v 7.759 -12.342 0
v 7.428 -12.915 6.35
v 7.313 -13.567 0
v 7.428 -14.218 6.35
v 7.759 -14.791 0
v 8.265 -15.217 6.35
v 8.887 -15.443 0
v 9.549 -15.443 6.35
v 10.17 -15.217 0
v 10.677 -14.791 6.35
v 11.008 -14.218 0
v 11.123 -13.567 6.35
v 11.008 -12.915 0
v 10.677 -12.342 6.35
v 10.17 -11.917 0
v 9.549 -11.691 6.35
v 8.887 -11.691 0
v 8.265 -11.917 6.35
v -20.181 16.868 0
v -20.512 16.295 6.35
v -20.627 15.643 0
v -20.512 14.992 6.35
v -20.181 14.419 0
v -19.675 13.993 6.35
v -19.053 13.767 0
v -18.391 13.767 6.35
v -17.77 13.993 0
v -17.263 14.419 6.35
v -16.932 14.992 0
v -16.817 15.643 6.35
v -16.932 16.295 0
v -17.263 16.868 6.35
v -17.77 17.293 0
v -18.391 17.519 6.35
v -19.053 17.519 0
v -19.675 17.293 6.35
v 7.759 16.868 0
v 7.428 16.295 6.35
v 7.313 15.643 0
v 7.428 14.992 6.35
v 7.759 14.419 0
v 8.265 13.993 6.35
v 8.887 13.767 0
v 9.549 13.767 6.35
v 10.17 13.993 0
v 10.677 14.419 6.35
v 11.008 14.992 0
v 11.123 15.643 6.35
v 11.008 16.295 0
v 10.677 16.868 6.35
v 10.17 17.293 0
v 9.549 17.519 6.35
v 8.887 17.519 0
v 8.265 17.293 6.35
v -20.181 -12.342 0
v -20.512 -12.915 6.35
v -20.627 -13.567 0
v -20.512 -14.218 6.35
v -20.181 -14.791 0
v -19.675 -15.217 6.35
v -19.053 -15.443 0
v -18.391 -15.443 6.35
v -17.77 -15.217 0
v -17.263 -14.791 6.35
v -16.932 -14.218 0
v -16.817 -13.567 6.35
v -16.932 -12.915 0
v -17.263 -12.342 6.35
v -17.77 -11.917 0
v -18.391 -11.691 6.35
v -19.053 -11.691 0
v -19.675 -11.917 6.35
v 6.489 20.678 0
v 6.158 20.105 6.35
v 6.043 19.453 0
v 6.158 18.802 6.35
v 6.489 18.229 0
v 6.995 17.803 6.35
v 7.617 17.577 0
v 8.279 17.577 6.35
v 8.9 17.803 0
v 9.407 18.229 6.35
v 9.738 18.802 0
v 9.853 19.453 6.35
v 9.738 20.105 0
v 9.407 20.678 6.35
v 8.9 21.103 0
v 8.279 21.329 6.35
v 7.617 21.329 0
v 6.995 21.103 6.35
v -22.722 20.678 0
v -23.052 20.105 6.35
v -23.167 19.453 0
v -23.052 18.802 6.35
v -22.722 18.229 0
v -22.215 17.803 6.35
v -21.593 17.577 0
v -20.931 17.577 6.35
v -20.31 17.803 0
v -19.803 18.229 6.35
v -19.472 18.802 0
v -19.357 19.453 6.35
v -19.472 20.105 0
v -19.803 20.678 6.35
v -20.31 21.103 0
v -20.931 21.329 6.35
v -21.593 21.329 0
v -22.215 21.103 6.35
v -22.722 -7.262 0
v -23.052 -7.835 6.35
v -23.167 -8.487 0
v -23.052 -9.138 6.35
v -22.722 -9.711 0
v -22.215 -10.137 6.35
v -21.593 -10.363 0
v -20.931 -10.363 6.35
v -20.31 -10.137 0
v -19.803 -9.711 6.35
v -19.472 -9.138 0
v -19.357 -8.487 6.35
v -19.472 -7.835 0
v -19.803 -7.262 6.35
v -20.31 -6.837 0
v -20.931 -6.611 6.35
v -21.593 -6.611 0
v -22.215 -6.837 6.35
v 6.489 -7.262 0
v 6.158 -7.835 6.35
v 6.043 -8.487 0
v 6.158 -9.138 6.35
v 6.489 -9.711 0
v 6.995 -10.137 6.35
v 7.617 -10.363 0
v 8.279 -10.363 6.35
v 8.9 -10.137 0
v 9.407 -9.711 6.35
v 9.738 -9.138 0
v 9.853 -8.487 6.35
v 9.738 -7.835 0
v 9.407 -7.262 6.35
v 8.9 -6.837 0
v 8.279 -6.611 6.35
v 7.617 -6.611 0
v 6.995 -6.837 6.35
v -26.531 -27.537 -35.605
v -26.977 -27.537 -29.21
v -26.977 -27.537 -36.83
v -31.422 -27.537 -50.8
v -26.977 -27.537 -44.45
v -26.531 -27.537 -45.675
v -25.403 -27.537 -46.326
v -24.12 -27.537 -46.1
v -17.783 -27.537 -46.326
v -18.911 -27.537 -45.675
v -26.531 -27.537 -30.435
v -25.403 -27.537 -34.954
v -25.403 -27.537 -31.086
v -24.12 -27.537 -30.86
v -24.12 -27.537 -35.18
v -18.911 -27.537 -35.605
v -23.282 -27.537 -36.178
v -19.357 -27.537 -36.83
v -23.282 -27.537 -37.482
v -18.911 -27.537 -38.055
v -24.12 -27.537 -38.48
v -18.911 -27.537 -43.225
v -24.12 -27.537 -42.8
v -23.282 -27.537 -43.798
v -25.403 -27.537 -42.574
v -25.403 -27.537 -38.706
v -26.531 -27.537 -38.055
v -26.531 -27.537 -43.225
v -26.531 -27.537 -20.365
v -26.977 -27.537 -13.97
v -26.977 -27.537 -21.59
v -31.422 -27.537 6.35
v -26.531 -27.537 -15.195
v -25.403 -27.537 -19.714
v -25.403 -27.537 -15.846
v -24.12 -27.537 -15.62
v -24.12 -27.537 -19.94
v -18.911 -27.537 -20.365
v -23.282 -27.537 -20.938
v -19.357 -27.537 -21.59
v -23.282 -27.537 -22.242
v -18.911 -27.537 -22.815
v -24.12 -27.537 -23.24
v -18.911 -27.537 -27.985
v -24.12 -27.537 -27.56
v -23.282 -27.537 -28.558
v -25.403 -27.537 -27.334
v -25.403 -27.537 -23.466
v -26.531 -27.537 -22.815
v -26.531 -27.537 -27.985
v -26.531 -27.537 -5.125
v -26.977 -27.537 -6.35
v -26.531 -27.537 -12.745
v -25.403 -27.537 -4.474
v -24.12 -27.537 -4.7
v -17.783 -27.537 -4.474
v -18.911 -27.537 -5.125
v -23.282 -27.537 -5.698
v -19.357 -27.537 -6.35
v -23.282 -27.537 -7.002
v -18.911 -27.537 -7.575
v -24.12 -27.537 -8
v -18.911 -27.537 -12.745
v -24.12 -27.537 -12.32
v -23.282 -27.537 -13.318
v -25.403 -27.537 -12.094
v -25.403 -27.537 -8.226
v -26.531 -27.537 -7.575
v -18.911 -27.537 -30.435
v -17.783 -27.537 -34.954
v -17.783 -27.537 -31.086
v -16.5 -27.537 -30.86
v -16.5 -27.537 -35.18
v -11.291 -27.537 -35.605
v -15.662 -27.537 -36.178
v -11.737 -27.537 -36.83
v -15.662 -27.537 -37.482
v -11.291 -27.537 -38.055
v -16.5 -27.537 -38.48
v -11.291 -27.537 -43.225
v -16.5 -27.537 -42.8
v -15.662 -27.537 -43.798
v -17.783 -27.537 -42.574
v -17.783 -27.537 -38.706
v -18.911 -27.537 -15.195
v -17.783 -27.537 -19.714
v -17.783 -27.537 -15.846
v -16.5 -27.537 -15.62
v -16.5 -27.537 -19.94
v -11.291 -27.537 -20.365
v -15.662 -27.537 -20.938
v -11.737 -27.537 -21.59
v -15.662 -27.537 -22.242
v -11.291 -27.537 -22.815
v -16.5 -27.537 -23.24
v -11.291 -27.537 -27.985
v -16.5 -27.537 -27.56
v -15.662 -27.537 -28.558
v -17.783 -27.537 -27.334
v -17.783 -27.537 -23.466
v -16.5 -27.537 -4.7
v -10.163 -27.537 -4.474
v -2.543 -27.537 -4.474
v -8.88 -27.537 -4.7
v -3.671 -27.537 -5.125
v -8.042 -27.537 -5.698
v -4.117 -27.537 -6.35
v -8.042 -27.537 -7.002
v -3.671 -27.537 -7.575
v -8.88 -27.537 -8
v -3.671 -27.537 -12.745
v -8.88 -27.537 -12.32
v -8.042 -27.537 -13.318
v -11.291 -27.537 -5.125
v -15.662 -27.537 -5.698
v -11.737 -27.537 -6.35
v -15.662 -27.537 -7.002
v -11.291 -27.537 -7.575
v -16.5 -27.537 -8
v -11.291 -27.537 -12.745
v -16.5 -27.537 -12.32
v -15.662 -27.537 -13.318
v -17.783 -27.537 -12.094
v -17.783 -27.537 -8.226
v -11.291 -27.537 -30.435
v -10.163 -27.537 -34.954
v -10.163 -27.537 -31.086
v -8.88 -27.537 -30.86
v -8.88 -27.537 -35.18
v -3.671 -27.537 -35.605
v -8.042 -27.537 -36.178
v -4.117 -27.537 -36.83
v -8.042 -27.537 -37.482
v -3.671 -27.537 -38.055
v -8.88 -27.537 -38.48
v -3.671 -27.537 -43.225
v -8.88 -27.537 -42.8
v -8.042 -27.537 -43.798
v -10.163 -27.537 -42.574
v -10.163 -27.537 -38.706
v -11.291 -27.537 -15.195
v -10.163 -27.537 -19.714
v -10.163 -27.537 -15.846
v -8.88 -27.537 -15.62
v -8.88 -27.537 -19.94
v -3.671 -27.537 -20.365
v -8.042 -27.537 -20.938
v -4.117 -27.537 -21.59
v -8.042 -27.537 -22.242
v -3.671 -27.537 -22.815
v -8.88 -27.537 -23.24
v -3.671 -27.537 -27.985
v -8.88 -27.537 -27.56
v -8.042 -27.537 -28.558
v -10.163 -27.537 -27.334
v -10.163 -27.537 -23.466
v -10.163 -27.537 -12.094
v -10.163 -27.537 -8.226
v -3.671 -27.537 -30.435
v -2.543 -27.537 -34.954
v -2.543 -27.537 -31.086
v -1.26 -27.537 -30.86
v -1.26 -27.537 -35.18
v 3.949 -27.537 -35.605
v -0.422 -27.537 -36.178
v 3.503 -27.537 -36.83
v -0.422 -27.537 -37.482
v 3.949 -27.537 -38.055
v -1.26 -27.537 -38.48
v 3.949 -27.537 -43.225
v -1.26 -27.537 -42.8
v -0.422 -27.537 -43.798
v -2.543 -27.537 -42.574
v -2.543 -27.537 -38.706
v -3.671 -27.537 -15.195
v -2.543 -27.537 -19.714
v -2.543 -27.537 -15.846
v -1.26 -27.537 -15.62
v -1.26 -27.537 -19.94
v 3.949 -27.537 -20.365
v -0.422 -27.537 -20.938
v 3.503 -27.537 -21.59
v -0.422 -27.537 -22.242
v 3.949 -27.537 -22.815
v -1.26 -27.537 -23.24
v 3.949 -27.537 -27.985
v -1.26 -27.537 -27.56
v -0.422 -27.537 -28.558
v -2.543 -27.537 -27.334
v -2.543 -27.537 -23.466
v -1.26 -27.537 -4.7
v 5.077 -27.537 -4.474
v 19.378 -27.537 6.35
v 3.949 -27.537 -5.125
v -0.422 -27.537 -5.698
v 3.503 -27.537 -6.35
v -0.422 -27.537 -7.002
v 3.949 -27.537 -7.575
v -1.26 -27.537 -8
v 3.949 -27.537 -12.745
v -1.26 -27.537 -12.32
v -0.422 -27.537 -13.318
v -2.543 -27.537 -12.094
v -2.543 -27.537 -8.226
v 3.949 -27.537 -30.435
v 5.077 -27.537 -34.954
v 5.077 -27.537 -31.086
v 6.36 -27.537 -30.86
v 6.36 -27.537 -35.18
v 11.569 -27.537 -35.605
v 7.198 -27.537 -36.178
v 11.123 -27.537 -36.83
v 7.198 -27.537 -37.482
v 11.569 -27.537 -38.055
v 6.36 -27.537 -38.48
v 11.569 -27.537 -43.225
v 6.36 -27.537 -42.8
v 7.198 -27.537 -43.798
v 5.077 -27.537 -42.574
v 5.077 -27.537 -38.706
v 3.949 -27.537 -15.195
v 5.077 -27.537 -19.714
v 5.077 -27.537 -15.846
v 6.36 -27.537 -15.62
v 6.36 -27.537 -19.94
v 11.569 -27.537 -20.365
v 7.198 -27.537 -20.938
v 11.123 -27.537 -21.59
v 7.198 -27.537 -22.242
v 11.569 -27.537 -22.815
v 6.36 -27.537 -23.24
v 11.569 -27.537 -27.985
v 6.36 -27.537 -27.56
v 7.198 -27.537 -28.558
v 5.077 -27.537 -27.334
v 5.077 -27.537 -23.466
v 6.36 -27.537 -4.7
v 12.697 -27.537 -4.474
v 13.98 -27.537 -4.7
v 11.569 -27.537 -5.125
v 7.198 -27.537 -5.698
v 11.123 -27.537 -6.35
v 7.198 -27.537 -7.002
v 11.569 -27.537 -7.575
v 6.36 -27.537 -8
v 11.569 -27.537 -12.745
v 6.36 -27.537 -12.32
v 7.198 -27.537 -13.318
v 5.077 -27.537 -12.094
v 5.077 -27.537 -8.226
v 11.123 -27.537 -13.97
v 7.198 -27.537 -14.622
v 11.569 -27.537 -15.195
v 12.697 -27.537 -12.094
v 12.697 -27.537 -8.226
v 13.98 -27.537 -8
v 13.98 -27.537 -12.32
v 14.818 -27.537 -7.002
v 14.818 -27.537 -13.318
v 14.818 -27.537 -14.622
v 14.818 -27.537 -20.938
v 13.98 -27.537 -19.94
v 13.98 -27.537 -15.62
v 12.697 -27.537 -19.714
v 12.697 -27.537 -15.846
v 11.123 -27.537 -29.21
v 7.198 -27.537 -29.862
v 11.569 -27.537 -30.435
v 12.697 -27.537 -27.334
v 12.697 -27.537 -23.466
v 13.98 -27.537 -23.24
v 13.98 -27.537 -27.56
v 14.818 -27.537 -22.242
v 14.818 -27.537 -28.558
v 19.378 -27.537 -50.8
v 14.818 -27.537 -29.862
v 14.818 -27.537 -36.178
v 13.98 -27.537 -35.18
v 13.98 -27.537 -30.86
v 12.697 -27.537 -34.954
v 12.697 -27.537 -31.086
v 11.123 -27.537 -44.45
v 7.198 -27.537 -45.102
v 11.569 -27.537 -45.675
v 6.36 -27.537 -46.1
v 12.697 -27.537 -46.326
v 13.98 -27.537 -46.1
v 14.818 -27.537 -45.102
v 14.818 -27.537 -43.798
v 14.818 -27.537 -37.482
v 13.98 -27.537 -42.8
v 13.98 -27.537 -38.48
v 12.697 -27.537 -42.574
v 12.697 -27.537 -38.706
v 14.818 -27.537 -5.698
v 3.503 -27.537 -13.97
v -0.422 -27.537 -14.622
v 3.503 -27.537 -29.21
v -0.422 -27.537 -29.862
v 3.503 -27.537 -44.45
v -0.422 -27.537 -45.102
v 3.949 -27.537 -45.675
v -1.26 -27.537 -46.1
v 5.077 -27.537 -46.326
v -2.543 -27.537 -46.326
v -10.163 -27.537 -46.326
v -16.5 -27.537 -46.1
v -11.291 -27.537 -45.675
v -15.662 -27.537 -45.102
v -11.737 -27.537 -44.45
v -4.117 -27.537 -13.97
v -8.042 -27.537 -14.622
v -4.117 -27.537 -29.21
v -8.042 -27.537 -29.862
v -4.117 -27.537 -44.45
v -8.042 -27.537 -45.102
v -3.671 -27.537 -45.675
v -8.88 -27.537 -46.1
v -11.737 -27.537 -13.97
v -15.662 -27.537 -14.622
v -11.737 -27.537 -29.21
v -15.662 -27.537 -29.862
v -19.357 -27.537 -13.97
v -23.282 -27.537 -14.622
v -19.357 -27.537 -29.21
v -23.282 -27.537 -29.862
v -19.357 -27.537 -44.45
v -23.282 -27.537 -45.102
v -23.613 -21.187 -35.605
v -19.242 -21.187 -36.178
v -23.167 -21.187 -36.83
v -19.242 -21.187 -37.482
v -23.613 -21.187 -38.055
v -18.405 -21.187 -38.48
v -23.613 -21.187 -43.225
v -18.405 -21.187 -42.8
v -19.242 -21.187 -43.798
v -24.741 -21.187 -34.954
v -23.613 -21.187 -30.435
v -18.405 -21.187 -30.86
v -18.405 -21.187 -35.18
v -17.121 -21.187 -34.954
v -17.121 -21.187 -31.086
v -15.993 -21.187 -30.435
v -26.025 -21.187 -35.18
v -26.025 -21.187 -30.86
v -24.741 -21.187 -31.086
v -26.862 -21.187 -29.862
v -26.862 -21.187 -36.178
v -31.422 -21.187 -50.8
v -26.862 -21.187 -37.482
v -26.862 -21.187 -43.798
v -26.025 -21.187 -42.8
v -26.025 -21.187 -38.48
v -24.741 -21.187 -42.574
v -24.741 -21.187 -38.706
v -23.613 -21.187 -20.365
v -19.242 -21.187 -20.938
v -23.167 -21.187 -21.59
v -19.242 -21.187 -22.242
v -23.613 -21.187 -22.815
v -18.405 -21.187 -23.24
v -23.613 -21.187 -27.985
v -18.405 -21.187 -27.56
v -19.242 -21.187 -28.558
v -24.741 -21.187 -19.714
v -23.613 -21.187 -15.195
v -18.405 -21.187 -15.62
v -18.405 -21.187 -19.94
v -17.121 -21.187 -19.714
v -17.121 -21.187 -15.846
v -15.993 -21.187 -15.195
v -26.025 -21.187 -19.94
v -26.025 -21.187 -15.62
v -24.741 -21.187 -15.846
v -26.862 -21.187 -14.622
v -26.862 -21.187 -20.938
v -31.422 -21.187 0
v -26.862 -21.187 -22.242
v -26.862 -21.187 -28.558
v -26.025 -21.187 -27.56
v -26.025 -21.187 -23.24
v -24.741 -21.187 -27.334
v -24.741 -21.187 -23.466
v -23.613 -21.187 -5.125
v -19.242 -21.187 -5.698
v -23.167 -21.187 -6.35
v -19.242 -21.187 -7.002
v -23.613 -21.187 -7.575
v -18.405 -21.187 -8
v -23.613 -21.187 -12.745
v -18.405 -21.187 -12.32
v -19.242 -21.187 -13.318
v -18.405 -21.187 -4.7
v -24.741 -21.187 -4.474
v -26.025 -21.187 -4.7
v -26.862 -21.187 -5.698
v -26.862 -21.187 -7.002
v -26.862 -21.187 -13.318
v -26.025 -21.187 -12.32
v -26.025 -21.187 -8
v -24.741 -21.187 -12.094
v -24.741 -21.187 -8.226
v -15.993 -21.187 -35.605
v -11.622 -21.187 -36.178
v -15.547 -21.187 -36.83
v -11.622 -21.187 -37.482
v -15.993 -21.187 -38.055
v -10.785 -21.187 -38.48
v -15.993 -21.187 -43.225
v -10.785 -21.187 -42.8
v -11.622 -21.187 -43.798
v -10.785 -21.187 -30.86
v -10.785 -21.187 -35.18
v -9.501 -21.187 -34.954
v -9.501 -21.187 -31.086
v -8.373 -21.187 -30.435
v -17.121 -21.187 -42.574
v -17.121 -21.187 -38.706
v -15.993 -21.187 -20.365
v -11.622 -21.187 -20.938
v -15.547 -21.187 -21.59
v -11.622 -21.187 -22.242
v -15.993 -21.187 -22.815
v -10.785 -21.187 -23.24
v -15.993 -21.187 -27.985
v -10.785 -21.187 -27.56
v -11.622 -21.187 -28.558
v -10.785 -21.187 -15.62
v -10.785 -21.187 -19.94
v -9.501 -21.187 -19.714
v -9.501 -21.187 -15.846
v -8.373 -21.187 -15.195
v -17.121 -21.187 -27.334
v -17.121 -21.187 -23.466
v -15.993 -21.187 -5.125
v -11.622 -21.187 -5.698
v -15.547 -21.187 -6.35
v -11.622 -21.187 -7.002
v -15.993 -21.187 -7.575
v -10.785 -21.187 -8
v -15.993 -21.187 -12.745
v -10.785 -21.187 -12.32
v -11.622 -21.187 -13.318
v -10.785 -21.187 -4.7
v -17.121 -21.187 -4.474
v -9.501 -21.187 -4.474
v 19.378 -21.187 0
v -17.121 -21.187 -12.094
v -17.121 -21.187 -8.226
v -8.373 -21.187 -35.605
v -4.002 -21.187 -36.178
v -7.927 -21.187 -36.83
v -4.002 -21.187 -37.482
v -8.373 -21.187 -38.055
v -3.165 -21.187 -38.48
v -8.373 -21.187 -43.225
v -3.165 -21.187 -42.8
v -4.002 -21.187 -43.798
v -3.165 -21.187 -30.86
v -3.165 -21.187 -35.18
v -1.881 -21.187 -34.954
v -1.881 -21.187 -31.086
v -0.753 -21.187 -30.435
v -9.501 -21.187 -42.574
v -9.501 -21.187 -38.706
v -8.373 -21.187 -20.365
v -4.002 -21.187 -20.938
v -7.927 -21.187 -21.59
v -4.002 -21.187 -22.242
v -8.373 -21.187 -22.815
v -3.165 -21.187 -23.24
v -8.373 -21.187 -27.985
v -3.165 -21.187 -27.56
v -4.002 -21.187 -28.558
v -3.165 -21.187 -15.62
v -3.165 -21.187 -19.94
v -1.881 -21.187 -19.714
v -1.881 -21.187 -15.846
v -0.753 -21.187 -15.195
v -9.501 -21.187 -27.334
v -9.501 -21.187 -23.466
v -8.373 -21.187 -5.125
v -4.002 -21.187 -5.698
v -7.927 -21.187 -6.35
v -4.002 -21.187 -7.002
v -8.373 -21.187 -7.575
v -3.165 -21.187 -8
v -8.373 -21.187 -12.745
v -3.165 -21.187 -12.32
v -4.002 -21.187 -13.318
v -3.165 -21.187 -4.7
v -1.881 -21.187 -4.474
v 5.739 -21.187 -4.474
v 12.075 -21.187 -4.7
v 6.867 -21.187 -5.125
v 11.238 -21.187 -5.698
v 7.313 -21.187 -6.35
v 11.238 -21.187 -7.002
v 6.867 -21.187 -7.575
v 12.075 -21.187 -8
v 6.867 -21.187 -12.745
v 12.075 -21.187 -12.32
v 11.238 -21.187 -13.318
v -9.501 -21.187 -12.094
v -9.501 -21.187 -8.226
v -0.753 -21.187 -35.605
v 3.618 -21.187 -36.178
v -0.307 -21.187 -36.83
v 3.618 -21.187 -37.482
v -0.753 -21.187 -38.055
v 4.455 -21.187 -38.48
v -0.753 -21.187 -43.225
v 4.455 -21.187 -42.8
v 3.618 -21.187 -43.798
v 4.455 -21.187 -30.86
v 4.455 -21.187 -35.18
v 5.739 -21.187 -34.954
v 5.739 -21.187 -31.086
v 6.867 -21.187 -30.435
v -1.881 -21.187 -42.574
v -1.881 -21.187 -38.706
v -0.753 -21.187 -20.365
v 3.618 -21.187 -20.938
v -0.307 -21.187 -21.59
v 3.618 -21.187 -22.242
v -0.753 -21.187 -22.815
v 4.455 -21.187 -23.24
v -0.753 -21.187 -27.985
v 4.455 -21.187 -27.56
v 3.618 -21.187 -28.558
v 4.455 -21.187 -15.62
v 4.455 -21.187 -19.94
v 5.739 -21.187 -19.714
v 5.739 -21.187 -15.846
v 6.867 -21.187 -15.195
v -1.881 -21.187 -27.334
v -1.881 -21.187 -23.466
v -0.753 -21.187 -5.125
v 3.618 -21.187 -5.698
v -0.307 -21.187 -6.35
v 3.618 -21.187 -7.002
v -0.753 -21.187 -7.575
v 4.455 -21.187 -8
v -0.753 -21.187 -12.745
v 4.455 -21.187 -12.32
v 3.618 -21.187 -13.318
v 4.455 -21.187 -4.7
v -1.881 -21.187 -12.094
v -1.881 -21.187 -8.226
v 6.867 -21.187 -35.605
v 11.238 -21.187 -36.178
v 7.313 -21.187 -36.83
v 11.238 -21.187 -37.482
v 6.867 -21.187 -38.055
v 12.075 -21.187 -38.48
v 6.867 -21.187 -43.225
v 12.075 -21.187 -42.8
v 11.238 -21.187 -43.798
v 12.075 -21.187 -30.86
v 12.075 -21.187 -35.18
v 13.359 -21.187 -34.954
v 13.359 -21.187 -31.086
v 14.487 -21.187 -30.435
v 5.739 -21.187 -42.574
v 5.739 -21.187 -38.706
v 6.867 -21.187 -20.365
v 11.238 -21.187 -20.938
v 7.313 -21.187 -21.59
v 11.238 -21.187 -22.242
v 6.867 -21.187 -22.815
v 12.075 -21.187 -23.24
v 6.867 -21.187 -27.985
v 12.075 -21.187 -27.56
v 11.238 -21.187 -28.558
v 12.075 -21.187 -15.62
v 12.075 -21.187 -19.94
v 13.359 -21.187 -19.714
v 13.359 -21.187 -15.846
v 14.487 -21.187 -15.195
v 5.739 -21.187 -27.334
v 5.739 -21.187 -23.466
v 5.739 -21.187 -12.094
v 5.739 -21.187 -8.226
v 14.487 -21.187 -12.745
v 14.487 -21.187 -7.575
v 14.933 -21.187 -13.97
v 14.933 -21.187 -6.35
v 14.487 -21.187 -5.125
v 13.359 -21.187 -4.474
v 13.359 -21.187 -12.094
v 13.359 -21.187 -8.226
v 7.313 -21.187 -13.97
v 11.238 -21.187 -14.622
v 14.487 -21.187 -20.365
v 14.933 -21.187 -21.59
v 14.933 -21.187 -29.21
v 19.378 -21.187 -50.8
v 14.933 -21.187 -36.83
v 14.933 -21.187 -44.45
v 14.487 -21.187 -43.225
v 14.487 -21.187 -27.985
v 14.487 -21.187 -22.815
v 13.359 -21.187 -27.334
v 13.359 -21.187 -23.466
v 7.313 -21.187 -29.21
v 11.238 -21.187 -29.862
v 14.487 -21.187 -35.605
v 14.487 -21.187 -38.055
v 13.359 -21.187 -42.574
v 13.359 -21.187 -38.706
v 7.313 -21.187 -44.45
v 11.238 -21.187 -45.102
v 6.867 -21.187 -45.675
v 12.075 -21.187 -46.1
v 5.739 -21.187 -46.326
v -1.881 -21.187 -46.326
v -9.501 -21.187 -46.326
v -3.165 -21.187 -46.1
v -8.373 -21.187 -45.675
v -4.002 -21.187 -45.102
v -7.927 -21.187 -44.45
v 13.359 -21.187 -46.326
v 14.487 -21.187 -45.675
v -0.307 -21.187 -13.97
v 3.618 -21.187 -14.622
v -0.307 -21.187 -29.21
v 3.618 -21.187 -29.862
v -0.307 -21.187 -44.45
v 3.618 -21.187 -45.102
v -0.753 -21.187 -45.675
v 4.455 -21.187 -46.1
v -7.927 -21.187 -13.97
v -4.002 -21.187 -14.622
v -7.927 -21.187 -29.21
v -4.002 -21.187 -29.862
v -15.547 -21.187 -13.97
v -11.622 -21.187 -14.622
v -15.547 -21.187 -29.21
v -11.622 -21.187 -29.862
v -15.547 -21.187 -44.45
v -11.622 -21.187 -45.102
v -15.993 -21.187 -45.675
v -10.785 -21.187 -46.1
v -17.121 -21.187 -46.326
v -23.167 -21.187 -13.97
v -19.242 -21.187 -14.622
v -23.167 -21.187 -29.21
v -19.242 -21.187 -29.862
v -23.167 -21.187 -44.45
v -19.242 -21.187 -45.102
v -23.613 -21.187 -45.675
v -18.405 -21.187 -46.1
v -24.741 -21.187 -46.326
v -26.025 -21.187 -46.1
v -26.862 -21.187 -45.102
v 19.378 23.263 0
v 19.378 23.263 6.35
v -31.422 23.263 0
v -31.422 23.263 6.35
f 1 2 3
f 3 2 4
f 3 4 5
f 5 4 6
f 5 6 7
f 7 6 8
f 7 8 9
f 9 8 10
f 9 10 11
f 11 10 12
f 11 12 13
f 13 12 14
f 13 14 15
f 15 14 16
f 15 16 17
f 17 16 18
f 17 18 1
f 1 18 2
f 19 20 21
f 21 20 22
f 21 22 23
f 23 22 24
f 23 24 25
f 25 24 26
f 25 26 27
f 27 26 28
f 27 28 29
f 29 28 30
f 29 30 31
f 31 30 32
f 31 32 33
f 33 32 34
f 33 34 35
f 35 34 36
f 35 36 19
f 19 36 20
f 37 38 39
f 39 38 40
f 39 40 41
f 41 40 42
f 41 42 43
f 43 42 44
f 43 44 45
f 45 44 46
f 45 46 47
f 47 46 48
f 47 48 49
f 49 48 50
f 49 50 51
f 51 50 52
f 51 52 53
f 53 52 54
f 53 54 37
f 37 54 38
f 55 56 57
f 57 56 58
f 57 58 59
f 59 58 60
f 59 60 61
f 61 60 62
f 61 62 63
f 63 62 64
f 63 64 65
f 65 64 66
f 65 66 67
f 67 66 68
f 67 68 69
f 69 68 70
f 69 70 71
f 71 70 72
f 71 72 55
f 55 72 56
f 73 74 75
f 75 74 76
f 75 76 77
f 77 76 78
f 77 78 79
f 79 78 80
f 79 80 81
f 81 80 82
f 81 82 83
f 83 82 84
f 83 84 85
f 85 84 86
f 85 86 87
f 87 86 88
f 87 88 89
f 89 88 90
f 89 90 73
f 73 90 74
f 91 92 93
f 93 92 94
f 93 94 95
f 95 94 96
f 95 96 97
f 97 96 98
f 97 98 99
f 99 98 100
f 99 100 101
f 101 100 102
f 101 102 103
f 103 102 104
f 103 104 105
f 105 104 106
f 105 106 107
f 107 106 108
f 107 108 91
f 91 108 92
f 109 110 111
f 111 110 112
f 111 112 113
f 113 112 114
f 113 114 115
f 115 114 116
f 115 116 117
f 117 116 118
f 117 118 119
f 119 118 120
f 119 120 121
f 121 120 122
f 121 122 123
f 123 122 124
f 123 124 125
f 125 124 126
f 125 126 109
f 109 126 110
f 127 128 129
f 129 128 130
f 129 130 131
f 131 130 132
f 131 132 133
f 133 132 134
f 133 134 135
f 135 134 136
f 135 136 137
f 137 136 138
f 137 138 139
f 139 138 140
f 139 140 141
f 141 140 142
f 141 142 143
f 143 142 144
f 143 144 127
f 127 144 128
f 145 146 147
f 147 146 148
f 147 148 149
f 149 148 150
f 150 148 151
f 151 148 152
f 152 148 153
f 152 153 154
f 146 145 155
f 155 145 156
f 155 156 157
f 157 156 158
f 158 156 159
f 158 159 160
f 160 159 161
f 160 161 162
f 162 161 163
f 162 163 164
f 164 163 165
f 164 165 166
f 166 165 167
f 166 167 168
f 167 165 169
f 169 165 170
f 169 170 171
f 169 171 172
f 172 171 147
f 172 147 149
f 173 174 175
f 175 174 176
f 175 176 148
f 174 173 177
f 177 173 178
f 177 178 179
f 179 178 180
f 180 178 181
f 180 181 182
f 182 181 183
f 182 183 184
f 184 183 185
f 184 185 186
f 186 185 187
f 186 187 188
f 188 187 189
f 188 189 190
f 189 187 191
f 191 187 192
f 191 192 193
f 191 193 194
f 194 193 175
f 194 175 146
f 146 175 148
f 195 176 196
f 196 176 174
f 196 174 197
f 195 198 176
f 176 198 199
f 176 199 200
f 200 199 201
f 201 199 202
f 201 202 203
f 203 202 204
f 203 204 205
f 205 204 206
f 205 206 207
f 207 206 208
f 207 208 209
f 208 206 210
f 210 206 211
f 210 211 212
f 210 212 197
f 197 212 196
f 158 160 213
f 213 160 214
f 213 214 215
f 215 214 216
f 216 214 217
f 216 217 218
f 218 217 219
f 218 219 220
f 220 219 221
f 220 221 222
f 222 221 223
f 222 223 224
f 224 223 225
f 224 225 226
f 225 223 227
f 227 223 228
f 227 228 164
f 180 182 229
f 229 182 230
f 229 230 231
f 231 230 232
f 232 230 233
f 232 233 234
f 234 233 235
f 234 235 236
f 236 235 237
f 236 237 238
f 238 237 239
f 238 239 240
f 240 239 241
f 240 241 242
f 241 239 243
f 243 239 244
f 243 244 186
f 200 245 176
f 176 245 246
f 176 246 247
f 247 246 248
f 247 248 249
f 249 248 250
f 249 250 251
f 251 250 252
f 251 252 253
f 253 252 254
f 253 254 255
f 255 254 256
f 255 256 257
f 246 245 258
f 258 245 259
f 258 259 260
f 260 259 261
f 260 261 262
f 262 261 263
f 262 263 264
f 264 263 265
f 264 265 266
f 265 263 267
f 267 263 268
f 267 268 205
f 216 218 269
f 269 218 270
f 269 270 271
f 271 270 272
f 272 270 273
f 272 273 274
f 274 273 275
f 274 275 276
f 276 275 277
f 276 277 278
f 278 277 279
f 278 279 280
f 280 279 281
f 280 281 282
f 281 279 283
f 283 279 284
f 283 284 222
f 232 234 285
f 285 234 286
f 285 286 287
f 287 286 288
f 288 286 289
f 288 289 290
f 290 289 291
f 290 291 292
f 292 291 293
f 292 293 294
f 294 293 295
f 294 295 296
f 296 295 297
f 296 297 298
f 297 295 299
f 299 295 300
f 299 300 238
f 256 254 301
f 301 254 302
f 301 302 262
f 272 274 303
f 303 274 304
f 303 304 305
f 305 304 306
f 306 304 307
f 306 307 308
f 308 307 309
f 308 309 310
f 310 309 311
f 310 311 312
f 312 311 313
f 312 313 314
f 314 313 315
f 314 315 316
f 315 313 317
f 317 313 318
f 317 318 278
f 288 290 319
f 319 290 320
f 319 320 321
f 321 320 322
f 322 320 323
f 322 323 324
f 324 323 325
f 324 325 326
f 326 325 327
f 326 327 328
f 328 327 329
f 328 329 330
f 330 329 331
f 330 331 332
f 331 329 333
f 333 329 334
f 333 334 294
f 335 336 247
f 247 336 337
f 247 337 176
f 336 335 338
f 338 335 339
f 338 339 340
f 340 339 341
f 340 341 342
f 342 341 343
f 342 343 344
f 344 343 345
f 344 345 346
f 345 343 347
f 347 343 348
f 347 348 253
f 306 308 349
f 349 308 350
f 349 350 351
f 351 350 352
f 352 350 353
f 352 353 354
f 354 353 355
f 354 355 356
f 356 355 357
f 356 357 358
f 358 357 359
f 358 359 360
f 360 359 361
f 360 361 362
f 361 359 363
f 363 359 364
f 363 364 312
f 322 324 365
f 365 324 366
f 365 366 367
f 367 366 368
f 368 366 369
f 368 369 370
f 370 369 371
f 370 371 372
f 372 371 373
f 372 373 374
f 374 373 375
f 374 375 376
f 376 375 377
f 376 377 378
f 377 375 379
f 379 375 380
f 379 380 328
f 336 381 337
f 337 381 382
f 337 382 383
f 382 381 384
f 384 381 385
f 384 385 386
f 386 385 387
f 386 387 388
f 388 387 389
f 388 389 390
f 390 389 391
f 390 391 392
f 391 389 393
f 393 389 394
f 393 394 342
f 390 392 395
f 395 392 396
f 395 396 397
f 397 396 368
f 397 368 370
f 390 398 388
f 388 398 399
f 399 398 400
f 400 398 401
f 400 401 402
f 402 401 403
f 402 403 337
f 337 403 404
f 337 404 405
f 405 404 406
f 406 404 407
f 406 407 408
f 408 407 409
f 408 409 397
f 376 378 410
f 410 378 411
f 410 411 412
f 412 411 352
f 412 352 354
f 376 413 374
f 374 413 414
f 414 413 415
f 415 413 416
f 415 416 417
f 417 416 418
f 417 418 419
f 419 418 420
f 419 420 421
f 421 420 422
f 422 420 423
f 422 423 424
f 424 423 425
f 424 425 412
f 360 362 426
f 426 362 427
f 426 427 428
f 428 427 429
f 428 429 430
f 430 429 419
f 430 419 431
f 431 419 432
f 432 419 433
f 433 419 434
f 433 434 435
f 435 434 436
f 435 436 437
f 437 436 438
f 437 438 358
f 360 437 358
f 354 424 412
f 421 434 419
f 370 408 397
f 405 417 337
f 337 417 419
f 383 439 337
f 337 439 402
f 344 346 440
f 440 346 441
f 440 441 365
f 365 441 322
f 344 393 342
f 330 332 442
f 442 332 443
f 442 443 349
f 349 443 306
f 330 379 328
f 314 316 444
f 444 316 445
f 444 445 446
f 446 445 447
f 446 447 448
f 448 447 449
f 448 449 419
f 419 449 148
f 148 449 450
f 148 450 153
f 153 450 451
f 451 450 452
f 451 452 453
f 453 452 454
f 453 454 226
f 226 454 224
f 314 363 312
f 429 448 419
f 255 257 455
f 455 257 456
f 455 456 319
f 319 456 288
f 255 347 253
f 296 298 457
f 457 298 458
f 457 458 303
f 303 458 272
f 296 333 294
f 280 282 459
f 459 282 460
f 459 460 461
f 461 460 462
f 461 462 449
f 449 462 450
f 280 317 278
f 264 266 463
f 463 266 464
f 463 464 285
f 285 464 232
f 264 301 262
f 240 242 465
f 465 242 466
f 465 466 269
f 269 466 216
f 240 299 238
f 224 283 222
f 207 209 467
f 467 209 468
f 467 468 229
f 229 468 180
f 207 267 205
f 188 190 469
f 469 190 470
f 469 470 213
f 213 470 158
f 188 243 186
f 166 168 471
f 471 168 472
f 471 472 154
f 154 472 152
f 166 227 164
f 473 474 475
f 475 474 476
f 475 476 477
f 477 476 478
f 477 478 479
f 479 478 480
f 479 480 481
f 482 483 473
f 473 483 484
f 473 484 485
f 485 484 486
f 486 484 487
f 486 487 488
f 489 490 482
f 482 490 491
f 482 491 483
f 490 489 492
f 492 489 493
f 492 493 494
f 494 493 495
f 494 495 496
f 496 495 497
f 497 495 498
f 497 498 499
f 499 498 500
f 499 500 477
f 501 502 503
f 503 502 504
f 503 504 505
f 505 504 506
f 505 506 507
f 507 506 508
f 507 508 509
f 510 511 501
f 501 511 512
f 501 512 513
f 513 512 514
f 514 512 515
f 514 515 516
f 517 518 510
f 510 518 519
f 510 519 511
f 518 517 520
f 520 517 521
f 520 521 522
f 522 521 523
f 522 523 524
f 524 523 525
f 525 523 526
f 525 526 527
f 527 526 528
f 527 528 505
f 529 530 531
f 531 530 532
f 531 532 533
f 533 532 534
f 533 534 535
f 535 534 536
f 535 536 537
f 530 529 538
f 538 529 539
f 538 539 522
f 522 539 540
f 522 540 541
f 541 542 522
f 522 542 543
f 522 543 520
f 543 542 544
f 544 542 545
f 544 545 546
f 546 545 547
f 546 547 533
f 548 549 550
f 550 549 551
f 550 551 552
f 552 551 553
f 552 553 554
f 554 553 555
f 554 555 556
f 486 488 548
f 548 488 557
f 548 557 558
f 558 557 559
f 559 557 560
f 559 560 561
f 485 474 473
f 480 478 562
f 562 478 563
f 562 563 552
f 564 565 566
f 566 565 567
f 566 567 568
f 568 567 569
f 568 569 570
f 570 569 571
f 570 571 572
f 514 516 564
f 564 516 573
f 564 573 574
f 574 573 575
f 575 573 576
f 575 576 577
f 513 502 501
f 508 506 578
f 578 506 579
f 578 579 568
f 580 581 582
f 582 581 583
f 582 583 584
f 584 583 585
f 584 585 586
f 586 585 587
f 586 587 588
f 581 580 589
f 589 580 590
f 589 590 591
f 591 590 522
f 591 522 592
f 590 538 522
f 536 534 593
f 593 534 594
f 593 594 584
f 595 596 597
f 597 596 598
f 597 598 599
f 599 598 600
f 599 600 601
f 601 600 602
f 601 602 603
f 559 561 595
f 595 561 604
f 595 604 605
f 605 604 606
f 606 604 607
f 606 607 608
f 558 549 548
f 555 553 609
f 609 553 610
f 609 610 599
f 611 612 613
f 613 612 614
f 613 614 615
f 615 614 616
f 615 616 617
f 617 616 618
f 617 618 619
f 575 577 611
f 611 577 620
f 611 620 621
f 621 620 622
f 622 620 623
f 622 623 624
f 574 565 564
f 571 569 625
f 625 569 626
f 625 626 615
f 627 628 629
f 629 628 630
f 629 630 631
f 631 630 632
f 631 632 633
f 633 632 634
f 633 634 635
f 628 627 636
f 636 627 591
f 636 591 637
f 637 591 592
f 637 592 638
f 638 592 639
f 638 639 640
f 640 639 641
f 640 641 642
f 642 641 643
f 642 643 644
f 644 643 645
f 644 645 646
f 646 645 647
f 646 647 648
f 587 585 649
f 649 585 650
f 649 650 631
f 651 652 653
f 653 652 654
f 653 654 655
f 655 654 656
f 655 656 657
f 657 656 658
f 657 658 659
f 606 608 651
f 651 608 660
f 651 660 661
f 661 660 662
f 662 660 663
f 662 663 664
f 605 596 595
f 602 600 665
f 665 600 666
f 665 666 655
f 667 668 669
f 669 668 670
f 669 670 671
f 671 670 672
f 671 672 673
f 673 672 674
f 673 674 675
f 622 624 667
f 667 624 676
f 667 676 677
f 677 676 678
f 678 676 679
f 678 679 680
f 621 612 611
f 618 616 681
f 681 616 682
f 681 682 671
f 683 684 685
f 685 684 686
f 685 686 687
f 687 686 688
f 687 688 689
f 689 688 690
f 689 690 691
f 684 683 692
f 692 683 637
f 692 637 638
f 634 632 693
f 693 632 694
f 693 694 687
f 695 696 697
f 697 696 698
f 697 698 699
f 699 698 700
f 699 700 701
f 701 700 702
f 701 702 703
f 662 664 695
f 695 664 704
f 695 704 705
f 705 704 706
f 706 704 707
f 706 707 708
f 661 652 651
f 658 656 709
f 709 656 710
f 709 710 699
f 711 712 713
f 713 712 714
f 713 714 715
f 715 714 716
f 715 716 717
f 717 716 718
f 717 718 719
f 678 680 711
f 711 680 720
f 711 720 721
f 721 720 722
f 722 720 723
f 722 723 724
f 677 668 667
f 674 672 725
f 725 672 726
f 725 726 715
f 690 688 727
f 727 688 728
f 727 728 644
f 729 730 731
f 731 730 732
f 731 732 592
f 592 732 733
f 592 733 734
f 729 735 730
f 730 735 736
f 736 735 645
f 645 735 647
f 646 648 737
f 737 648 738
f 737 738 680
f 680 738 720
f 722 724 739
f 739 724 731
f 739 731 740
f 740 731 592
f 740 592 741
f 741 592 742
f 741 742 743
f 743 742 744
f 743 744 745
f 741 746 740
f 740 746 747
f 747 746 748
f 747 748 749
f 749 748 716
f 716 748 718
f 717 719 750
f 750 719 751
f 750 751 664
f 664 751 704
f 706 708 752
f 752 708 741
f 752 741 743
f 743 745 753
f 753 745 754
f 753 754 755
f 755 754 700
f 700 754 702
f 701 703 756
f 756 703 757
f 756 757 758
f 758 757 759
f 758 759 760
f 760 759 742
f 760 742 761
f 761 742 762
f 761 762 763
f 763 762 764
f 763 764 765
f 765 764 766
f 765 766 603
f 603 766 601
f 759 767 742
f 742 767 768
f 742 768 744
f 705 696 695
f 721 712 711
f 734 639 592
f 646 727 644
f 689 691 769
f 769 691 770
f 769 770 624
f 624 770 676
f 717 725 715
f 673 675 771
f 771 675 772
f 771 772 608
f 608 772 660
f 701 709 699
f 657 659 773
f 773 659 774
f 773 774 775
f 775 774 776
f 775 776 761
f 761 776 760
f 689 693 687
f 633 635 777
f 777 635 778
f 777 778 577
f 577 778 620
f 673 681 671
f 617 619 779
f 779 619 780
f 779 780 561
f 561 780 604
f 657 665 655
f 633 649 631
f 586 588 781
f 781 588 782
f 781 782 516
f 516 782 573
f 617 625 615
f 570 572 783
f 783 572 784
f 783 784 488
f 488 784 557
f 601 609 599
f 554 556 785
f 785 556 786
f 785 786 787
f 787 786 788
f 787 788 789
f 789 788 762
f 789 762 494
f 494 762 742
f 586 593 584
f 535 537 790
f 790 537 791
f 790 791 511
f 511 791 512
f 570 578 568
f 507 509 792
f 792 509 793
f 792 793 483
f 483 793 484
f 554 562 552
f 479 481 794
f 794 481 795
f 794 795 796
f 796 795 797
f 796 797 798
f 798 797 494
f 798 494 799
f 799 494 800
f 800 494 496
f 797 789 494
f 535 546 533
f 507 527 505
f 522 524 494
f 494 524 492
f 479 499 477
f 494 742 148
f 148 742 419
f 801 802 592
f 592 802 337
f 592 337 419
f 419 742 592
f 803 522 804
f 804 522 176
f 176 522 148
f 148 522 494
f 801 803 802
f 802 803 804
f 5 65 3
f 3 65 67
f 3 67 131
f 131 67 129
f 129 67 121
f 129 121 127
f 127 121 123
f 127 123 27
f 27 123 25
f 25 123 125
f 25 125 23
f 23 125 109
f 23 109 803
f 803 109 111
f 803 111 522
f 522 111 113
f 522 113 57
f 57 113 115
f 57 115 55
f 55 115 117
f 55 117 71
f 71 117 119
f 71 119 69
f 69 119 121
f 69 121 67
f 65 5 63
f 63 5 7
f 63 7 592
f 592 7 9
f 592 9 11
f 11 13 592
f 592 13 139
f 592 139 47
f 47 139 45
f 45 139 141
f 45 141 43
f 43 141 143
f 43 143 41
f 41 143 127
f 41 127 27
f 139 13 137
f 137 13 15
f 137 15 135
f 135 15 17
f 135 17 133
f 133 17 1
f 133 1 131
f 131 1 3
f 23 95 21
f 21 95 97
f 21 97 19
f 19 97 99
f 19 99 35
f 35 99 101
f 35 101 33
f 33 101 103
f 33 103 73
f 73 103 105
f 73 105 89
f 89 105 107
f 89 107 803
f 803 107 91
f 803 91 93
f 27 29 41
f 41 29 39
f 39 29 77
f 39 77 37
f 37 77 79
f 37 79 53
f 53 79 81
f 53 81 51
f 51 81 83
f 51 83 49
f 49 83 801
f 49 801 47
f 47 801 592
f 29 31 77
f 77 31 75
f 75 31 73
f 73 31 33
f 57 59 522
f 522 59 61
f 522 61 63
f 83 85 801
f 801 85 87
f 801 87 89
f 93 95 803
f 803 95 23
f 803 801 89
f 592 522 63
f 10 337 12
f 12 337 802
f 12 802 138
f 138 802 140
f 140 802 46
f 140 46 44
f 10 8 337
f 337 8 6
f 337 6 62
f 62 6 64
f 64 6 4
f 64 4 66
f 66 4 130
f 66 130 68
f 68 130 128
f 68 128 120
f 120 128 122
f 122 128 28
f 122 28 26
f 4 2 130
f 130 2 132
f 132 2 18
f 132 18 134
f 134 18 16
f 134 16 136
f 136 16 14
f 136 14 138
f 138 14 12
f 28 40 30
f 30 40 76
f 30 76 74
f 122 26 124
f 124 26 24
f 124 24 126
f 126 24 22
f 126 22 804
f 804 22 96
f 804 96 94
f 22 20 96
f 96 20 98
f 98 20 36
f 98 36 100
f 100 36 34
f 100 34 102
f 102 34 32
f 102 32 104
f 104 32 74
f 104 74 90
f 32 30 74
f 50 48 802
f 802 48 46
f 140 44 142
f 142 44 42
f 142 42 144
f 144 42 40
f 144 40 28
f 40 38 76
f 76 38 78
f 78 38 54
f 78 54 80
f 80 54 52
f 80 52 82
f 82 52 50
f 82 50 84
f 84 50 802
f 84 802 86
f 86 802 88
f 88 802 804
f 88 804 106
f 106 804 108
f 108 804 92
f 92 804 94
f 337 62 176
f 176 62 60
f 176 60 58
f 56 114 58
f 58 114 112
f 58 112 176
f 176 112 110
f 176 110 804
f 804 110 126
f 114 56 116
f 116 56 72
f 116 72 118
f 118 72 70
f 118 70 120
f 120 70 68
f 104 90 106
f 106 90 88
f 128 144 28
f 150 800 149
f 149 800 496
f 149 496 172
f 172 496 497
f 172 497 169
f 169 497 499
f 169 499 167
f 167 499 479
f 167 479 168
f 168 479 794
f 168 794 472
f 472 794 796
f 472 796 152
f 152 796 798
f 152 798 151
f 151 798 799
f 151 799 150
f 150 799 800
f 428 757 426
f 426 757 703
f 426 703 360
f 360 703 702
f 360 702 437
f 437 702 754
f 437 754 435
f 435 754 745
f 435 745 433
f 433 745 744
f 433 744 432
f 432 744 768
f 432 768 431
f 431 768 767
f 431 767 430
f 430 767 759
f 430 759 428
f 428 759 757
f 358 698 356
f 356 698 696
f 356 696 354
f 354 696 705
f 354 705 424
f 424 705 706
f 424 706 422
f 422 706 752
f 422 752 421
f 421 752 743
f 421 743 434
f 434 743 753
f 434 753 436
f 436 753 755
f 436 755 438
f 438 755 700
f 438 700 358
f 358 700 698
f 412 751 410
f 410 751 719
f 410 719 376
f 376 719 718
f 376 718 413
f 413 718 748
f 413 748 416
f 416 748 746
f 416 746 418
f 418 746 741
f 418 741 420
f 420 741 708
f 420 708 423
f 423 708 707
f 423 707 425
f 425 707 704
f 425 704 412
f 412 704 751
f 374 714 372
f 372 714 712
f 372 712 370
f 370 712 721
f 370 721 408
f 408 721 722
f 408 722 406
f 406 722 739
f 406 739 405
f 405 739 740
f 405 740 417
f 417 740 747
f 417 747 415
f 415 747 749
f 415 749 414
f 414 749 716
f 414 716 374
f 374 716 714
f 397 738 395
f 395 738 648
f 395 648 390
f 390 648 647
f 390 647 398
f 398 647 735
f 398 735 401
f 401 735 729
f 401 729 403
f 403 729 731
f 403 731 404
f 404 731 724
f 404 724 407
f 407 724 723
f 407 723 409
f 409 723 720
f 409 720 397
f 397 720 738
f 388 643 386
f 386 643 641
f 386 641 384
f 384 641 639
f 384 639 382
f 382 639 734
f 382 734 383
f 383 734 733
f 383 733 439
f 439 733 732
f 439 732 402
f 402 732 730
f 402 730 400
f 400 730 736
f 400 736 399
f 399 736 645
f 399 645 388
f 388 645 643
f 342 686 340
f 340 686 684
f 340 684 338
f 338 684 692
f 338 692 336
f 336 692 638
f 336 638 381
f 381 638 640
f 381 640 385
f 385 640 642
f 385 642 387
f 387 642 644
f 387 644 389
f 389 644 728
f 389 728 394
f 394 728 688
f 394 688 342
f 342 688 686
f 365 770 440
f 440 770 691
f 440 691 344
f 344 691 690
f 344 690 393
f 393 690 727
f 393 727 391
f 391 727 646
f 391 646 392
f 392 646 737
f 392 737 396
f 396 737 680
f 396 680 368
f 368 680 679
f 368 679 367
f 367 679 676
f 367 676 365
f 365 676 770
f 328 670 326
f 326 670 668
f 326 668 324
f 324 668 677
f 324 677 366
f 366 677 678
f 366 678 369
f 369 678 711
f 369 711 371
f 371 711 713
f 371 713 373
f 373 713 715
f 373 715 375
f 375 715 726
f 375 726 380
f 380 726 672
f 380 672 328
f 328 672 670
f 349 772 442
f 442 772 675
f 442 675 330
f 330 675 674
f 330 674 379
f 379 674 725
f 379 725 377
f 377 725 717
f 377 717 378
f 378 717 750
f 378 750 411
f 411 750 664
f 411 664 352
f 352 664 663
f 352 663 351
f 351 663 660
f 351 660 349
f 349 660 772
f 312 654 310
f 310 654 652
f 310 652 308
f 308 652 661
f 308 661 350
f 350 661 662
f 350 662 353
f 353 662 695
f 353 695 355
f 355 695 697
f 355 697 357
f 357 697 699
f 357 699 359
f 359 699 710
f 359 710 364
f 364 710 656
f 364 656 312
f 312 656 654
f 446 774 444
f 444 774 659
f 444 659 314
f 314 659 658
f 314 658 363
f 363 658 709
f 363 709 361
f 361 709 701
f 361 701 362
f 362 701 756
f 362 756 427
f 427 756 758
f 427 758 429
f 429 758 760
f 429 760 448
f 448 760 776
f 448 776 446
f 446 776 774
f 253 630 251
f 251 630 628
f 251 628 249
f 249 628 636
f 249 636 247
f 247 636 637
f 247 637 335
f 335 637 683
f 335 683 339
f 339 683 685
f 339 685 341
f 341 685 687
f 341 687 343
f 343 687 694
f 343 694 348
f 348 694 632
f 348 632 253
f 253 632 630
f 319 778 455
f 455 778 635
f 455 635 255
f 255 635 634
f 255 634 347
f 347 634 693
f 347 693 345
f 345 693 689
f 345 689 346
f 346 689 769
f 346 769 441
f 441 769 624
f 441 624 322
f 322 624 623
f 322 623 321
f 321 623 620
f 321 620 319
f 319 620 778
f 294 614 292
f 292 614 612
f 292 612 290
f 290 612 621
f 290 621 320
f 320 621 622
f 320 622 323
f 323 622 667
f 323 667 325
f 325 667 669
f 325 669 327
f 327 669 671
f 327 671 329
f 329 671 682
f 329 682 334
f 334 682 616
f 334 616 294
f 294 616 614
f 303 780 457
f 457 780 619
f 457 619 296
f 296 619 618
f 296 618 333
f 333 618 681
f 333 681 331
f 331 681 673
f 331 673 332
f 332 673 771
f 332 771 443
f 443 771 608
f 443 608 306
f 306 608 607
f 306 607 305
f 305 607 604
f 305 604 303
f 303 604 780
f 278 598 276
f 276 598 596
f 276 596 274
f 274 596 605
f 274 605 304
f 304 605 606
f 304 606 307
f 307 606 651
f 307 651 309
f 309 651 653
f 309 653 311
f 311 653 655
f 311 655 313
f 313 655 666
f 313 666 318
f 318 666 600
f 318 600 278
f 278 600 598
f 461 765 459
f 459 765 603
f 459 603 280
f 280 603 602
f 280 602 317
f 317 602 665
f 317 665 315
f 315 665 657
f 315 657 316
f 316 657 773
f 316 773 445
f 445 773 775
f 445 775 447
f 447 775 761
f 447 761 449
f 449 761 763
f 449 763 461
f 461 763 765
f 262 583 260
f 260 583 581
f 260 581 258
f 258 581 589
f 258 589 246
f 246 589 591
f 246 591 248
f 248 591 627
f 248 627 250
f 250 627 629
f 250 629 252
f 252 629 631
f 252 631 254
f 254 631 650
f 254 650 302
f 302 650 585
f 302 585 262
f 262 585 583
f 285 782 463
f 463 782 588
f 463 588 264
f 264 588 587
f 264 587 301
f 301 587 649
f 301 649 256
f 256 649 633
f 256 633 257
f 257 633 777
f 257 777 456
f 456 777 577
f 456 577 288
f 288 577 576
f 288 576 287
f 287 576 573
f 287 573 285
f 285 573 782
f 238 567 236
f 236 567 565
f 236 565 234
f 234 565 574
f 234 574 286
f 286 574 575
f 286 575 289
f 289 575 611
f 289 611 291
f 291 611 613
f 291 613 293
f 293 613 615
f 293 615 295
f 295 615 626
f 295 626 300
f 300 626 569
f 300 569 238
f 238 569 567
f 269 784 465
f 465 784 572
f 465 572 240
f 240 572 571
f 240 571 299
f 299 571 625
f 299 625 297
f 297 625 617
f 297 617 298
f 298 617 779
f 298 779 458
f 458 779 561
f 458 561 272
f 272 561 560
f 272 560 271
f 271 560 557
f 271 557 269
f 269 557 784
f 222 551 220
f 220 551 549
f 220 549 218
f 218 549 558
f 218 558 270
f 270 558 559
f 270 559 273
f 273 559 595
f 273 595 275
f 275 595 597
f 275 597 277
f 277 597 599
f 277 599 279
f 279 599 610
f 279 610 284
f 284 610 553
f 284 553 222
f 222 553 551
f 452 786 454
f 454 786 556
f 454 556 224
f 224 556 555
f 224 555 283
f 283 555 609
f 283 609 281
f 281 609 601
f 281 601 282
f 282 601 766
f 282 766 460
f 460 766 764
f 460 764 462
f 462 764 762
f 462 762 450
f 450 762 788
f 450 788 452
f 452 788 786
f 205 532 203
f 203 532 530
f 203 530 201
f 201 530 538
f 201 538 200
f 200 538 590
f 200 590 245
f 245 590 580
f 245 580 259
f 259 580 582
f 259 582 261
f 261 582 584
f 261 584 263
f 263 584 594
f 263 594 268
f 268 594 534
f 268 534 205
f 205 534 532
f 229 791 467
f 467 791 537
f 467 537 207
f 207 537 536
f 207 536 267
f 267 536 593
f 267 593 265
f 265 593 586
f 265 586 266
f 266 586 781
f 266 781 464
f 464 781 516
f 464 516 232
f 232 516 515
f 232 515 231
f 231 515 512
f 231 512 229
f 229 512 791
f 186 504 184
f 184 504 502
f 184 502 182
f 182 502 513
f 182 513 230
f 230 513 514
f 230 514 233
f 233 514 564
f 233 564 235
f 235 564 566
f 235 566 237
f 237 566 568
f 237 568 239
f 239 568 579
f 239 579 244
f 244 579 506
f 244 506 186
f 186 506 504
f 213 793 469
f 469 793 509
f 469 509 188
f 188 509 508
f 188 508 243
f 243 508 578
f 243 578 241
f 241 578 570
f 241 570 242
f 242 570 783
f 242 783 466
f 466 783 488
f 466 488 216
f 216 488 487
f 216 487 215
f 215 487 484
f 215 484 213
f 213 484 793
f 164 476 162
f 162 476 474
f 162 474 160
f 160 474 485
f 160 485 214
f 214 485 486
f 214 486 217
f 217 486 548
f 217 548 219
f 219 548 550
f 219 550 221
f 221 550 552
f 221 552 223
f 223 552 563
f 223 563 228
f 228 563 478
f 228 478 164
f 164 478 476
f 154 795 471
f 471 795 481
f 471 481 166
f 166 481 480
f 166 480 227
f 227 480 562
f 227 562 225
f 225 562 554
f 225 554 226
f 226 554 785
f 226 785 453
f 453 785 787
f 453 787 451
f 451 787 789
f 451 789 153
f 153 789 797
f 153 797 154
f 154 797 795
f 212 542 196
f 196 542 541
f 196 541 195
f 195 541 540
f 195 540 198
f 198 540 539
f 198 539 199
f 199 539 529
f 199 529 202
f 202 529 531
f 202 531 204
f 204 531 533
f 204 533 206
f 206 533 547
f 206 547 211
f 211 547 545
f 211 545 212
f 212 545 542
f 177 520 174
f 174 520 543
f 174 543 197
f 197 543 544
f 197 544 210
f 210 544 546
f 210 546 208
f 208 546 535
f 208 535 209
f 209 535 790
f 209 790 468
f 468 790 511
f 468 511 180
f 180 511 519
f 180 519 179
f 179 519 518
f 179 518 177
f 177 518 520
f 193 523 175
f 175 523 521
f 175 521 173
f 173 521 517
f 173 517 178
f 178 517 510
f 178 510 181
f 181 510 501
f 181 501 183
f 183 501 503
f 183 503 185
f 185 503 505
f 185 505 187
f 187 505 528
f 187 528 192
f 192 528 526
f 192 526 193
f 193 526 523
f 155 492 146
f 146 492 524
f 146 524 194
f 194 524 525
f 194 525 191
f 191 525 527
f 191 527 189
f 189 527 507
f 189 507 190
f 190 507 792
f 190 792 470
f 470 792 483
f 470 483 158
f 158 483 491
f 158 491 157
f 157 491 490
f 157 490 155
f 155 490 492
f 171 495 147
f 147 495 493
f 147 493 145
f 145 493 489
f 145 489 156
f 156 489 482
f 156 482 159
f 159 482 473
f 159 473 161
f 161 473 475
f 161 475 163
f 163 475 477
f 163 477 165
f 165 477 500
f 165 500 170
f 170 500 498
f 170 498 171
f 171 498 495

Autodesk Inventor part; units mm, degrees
ref_plane "YZ Plane" through (0, 0, 0) normal (1, 0, 0) x (0, 1, 0)
ref_plane "XZ Plane" through (0, 0, 0) normal (0, 1, 0) x (-1, 0, 0)
ref_plane "XY Plane" through (0, 0, 0) normal (0, 0, 1) x (1, 0, 0)
sketch "Sketch1" plane through (0, 0, 0) normal (0, 0, 1) x (1, 0, 0)
  line L0 (-31.4222, 23.2631) -> (19.3778, 23.2631)
  line L1 (19.3778, 23.2631) -> (19.3778, -21.1869)
  line L2 (19.3778, -21.1869) -> (-31.4222, -21.1869)
  line L3 (-31.4222, -21.1869) -> (-31.4222, 23.2631)
  point P0 (0, 0)
  dimension "d0" = 44.45
  dimension "d1" = 50.8
extrude "Extrusion1" add sketch "Sketch1" along normal blind 6.35
sketch "Sketch2" plane through (0, 0, 6.35) normal (0, 0, 1) x (1, 0, 0)
  line L0 (-31.4222, -21.1869) -> (19.3778, -21.1869)
  line L1 (19.3778, -21.1869) -> (19.3778, -27.5369)
  line L2 (19.3778, -27.5369) -> (-31.4222, -27.5369)
  line L3 (-31.4222, -27.5369) -> (-31.4222, -21.1869)
  line L4 (19.3778, -21.1869) -> (19.3778, 23.2631) projected
  line L5 (-31.4222, 23.2631) -> (-31.4222, -21.1869) projected
  line L6 (-31.4222, -21.1869) -> (19.3778, -21.1869) projected
  point P0 (0, 0)
  dimension "d4" = 0
  dimension "d5" = 0
  dimension "d6" = 6.35
  dimension "d7" = 0
extrude "Extrusion2" add sketch "Sketch2" against normal blind 57.15
sketch "Sketch3" plane through (0, 0, 6.35) normal (0, 0, 1) x (1, 0, 0)
  line L0 (19.3778, 23.2631) -> (-31.4222, 23.2631) projected
  line L1 (-31.4222, 23.2631) -> (-31.4222, -27.5369) projected
  line L2 (19.3778, 23.2631) -> (19.3778, -27.5369) projected
  point P0 (0, 0)
  point P1 (-21.2622, 19.4531)
  point P2 (-21.2622, -8.4869)
  point P3 (7.9478, 19.4531)
  point P4 (7.9478, -8.4869)
  dimension "d10" = 29.21
  dimension "d11" = 0
  dimension "d12" = 0
  dimension "d13" = 0
  dimension "d14" = 27.94
  dimension "d15" = 3.81
  dimension "d16" = 10.16
  dimension "d17" = 11.43
  dimension "d25" = 0
hole "Hole1" at (-21.2622, 19.4531, 6.35) at (-21.2622, -8.4869, 6.35) at (7.9478, 19.4531, 6.35) at (7.9478, -8.4869, 6.35) direction (0, 0, -1) diameter 3.81 depth 25.4 tip angle 118
sketch "Sketch4" plane through (0, 0, 6.35) normal (0, 0, 1) x (1, 0, 0)
  circle A0 centre (-21.2622, 19.4531) radius 1.905 projected
  point P0 (0, 0)
  point P1 (-18.7222, 15.6431)
  point P2 (9.2178, 15.6431)
  point P3 (9.2178, -13.5669)
  point P4 (-18.7222, -13.5669)
  dimension "d26" = 0
  dimension "d27" = 0
  dimension "d28" = 0
  dimension "d29" = 0
  dimension "d30" = 29.21
  dimension "d31" = 27.94
  dimension "d42" = 2.54
  dimension "d43" = 3.81
hole "Hole2" at (-18.7222, 15.6431, 6.35) at (9.2178, 15.6431, 6.35) at (9.2178, -13.5669, 6.35) at (-18.7222, -13.5669, 6.35) direction (0, 0, -1) diameter 3.81 depth 25.4 tip angle 118
sketch "Sketch5" plane through (-31.4222, -21.1869, 0) normal (0, 1, 0) x (1, 0, 0)
  line L0 (50.8, 0) -> (50.8, 50.8) projected
  line L1 (0, 50.8) -> (50.8, 50.8) projected
  point P0 (31.4222, 0)
  point P1 (44.45, 44.45)
  point P2 (44.45, 36.83)
  point P3 (44.45, 29.21)
  point P4 (44.45, 21.59)
  point P5 (44.45, 13.97)
  point P6 (44.45, 6.35)
  point P7 (36.83, 6.35)
  point P8 (36.83, 13.97)
  point P9 (36.83, 21.59)
  point P10 (36.83, 29.21)
  point P11 (36.83, 36.83)
  point P12 (36.83, 44.45)
  point P13 (29.21, 6.35)
  point P14 (29.21, 13.97)
  point P15 (29.21, 21.59)
  point P16 (29.21, 29.21)
  point P17 (29.21, 36.83)
  point P18 (29.21, 44.45)
  point P19 (21.59, 6.35)
  point P20 (21.59, 13.97)
  point P21 (21.59, 21.59)
  point P22 (21.59, 29.21)
  point P23 (21.59, 36.83)
  point P24 (21.59, 44.45)
  point P25 (13.97, 6.35)
  point P26 (13.97, 13.97)
  point P27 (13.97, 21.59)
  point P28 (13.97, 29.21)
  point P29 (13.97, 36.83)
  point P30 (13.97, 44.45)
  point P31 (6.35, 6.35)
  point P32 (6.35, 13.97)
  point P33 (6.35, 21.59)
  point P34 (6.35, 29.21)
  point P35 (6.35, 36.83)
  point P36 (6.35, 44.45)
  dimension "d44" = 6.35
  dimension "d45" = 6.35
  dimension "d48" = 7.62
  dimension "d58" = 7.62
hole "Hole3" at (13.0278, -21.1869, -44.45) at (13.0278, -21.1869, -36.83) at (13.0278, -21.1869, -29.21) at (13.0278, -21.1869, -21.59) at (13.0278, -21.1869, -13.97) at (13.0278, -21.1869, -6.35) at (5.4078, -21.1869, -6.35) at (5.4078, -21.1869, -13.97) at (5.4078, -21.1869, -21.59) at (5.4078, -21.1869, -29.21) at (5.4078, -21.1869, -36.83) at (5.4078, -21.1869, -44.45) at (-2.2122, -21.1869, -6.35) at (-2.2122, -21.1869, -13.97) at (-2.2122, -21.1869, -21.59) at (-2.2122, -21.1869, -29.21) at (-2.2122, -21.1869, -36.83) at (-2.2122, -21.1869, -44.45) at (-9.8322, -21.1869, -6.35) at (-9.8322, -21.1869, -13.97) at (-9.8322, -21.1869, -21.59) at (-9.8322, -21.1869, -29.21) at (-9.8322, -21.1869, -36.83) at (-9.8322, -21.1869, -44.45) at (-17.4522, -21.1869, -6.35) at (-17.4522, -21.1869, -13.97) at (-17.4522, -21.1869, -21.59) at (-17.4522, -21.1869, -29.21) at (-17.4522, -21.1869, -36.83) at (-17.4522, -21.1869, -44.45) at (-25.0722, -21.1869, -6.35) at (-25.0722, -21.1869, -13.97) at (-25.0722, -21.1869, -21.59) at (-25.0722, -21.1869, -29.21) at (-25.0722, -21.1869, -36.83) at (-25.0722, -21.1869, -44.45) direction (0, -1, 0) diameter 3.81 depth 25.4 tip angle 118
properties part number "LidarMount2"
